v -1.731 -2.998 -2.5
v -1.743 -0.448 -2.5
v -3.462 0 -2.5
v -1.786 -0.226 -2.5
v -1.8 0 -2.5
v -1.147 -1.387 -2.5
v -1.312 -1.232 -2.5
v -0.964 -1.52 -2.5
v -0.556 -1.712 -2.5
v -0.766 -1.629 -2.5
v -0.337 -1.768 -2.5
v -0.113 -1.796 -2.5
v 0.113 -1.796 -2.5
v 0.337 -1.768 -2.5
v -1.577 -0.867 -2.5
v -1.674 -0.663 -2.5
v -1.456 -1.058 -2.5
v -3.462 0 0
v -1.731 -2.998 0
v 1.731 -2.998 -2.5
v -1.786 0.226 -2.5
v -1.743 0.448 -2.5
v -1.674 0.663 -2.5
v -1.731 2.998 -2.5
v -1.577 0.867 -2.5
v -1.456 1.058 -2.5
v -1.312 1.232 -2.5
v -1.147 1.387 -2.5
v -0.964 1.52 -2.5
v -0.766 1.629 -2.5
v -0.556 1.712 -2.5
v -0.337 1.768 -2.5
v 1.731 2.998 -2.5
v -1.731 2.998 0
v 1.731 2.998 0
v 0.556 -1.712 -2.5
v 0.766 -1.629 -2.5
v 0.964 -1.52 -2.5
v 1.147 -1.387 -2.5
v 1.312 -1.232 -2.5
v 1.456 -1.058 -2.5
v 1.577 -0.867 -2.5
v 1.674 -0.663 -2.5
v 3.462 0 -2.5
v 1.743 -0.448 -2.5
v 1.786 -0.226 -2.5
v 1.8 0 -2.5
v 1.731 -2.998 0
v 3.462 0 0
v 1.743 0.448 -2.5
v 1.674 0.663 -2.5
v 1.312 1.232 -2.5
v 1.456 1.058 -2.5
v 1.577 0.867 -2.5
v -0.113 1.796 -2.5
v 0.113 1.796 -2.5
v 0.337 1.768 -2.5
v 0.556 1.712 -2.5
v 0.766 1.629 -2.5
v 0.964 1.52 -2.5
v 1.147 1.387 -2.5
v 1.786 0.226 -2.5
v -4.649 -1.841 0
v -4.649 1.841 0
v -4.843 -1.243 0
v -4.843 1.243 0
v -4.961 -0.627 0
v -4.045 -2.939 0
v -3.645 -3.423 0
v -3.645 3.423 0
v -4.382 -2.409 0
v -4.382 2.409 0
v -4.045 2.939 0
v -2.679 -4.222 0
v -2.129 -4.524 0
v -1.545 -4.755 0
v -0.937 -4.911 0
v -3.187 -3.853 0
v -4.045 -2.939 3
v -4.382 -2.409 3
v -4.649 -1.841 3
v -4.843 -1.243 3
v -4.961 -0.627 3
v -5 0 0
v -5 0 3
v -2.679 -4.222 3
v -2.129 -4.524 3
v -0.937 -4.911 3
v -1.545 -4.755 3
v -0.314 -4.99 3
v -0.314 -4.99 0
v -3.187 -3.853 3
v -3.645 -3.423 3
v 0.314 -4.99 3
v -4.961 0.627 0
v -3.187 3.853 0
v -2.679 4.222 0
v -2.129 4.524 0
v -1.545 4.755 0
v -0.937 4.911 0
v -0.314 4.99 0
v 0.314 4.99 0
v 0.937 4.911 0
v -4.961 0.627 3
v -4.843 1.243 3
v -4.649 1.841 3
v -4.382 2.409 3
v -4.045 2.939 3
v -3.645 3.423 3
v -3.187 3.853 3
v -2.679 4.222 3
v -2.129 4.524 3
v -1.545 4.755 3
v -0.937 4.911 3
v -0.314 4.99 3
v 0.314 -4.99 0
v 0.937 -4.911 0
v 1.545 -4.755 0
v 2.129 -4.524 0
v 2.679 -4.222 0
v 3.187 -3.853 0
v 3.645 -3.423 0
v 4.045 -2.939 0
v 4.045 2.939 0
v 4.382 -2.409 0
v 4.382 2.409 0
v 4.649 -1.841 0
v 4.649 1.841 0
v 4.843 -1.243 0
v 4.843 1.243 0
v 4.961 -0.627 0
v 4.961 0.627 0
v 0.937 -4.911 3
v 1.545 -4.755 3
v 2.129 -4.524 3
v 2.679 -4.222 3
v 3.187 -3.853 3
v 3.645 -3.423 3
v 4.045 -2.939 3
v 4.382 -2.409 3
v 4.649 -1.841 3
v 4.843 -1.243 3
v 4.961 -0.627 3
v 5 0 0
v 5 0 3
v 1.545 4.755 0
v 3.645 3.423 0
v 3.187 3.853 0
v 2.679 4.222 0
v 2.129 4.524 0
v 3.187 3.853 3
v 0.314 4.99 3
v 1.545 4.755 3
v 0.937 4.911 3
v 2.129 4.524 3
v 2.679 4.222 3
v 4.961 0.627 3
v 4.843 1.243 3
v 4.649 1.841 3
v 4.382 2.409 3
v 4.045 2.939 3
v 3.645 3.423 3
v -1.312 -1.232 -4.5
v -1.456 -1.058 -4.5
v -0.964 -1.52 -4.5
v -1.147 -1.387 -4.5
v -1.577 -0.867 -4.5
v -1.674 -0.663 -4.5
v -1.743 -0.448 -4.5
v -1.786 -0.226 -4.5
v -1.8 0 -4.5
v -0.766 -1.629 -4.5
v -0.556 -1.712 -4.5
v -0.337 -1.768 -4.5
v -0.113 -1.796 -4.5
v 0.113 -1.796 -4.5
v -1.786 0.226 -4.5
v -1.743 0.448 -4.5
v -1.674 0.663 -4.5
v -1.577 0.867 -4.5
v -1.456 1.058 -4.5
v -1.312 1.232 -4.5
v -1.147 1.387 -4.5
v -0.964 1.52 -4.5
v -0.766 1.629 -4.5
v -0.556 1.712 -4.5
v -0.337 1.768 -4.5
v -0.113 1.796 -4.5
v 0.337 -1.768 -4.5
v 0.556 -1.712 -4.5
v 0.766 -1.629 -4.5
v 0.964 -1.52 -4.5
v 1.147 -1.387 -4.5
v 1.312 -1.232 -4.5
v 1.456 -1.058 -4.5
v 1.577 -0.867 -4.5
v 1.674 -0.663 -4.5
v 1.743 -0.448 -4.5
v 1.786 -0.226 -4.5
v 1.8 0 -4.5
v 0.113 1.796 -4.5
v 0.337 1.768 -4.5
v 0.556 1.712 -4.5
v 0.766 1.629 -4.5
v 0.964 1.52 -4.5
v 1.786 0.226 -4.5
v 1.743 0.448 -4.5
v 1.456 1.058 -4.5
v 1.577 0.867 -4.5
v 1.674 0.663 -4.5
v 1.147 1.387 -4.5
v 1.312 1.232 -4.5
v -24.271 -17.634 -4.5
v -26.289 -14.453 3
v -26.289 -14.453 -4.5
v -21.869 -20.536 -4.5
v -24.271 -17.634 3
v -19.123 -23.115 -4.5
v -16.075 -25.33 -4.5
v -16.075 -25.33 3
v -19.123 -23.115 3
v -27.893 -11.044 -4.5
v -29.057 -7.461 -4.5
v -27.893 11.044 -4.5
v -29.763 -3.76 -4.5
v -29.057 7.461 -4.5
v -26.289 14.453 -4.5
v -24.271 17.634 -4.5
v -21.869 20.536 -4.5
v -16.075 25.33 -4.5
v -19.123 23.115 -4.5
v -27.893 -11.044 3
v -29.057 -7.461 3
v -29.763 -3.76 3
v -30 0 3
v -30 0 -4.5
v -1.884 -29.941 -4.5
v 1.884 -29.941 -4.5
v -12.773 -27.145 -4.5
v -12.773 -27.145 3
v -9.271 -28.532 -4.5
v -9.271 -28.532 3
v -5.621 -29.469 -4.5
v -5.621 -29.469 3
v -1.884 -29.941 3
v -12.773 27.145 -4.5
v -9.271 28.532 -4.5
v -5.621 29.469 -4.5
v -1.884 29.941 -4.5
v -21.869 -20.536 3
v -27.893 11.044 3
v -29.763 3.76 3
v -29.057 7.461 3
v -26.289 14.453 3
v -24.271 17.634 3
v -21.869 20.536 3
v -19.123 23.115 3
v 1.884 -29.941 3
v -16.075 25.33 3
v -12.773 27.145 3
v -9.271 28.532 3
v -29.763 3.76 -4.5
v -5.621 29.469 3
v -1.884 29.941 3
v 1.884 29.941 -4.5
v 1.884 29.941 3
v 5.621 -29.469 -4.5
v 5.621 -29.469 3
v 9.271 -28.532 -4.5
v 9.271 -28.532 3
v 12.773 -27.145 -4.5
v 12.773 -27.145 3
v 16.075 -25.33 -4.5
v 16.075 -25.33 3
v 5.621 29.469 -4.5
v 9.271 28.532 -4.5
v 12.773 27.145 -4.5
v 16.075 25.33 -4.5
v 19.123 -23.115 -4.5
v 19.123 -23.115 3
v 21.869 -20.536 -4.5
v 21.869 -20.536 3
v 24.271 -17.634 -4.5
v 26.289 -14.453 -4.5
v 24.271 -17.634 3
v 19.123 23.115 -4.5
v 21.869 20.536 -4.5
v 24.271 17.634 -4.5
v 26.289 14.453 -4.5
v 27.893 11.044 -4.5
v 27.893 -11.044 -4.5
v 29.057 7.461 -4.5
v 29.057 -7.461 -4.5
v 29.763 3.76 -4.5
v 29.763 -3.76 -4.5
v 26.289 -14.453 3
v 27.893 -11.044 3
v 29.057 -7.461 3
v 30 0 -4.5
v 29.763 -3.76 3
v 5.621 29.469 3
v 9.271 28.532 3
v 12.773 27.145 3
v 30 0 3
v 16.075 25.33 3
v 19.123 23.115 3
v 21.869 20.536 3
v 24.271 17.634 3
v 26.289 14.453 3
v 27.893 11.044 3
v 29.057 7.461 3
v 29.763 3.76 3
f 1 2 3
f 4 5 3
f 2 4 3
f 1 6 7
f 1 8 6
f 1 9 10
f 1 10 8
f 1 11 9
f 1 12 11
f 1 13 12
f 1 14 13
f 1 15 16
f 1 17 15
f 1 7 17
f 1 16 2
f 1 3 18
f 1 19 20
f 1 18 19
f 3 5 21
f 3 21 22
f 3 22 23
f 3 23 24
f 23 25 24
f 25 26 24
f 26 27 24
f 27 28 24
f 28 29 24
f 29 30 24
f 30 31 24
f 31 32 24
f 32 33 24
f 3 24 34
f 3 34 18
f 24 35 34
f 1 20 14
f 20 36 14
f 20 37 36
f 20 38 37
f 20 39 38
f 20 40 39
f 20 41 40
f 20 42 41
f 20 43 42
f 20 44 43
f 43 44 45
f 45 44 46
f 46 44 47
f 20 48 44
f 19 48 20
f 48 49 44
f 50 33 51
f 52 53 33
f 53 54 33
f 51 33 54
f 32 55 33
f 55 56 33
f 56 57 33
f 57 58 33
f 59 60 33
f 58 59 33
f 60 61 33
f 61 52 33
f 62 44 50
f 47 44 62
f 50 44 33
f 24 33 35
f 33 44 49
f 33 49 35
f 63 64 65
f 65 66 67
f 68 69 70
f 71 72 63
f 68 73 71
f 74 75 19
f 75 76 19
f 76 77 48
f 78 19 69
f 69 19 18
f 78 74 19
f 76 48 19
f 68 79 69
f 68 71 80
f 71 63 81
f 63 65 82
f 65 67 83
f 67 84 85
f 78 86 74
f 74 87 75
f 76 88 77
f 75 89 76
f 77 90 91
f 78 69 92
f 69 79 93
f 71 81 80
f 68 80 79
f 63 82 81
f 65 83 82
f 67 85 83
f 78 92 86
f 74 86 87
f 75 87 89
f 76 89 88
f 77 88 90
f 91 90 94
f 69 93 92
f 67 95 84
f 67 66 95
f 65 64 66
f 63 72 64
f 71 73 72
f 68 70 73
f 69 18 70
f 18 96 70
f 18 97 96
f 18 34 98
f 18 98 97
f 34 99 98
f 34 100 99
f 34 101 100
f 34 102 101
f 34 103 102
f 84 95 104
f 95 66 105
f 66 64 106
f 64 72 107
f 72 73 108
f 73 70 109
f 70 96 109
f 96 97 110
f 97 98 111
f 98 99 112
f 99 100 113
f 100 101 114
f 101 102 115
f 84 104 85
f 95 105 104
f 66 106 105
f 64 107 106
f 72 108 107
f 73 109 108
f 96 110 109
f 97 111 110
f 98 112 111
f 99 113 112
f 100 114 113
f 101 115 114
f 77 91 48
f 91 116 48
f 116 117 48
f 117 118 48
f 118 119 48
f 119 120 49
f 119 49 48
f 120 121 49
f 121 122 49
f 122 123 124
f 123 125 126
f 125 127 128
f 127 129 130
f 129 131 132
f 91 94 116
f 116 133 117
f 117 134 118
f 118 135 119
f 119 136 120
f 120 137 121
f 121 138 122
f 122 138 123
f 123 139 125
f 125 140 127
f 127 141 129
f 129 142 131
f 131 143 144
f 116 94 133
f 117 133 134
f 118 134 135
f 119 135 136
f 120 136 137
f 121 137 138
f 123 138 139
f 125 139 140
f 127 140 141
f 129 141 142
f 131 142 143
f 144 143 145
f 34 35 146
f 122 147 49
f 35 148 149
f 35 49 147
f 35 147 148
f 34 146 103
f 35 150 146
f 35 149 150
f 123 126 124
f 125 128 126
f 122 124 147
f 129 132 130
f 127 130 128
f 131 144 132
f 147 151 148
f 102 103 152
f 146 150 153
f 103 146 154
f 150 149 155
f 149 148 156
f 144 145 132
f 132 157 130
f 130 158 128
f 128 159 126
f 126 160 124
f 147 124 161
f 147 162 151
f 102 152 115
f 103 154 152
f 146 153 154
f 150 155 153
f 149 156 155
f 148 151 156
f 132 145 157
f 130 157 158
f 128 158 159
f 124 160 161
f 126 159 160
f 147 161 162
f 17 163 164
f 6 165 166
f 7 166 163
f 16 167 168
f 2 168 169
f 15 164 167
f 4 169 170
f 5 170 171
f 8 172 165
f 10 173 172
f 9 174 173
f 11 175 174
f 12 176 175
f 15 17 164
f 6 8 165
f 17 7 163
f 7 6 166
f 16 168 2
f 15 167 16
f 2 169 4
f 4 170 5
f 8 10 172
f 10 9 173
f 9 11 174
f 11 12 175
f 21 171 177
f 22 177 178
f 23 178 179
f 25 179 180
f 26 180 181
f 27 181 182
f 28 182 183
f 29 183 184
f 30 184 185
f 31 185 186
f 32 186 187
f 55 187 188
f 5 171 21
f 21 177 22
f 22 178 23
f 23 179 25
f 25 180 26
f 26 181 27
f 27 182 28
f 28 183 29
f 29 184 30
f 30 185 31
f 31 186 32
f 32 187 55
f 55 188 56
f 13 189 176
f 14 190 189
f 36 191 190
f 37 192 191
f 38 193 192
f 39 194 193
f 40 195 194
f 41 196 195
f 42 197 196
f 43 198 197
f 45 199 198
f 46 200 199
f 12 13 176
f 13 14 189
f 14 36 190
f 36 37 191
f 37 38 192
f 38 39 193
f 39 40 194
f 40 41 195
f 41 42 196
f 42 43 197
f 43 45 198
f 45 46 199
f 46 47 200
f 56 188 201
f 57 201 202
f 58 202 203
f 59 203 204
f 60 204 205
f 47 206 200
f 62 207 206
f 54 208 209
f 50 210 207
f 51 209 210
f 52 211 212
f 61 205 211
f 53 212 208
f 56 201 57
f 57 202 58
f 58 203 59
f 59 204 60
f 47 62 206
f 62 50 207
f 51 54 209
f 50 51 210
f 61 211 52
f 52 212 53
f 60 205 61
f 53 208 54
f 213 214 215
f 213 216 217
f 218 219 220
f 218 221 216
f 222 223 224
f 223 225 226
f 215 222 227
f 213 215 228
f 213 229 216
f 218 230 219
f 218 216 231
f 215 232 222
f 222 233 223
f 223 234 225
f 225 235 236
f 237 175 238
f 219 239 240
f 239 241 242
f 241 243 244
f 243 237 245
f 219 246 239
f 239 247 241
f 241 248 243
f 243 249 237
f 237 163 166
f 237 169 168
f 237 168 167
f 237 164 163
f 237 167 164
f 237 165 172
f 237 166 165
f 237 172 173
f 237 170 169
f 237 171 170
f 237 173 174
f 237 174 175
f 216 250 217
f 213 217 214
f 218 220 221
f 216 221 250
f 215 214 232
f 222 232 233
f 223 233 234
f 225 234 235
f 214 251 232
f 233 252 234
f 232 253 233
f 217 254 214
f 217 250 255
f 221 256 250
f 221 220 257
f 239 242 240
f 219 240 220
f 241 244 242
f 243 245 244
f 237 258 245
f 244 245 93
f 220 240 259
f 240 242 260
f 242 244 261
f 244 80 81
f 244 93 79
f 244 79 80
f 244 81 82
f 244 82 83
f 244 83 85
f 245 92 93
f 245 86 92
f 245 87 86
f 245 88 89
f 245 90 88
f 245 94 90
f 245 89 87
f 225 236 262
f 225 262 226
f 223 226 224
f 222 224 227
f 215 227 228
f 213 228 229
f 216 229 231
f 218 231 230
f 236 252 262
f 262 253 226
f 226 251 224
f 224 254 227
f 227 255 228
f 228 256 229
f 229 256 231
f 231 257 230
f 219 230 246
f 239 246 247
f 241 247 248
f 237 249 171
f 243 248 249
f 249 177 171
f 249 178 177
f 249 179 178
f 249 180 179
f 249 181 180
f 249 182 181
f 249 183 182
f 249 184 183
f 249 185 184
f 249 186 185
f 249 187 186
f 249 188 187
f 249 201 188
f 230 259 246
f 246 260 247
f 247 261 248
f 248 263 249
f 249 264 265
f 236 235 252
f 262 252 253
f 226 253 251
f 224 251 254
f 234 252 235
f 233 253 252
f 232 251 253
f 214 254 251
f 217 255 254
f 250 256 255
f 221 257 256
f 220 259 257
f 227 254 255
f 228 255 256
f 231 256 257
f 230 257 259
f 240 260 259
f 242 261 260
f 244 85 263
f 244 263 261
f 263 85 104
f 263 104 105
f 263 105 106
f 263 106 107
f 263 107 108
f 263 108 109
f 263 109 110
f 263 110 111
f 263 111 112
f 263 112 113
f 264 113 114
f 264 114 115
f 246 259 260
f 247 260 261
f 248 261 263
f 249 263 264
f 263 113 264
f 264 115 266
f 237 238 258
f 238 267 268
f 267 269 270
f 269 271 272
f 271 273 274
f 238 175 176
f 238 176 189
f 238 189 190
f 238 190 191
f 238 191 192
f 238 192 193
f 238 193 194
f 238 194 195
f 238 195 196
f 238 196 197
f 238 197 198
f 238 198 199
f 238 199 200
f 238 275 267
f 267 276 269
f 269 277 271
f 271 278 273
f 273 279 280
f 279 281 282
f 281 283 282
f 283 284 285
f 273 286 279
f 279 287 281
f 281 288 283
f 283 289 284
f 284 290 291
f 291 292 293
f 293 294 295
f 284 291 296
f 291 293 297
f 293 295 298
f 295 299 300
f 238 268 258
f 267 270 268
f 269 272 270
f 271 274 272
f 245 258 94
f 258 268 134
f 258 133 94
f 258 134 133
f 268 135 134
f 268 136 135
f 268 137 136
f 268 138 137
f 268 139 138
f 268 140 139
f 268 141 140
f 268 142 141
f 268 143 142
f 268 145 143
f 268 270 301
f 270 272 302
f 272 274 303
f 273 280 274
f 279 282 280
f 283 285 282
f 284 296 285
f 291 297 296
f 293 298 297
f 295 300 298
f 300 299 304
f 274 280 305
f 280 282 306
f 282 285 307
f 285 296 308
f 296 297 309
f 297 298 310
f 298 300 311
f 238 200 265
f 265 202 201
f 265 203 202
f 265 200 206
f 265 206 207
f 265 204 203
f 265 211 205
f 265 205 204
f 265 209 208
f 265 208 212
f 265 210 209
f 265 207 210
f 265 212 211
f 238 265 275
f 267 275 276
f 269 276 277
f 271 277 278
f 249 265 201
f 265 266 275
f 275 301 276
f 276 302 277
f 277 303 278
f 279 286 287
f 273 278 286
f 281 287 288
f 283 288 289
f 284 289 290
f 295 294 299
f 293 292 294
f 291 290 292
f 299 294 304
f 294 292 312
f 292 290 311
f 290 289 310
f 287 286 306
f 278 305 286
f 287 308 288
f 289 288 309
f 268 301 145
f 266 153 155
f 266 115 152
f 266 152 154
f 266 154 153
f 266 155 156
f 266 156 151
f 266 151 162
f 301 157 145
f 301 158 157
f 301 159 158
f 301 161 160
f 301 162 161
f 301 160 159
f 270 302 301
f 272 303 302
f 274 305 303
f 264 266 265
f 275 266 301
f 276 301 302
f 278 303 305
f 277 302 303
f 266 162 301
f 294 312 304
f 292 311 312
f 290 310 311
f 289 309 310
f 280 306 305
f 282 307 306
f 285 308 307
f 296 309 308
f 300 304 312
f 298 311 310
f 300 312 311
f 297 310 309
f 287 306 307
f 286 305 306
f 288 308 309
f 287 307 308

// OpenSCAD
$fn = 50;


difference() {
	union() {
		translate(v = [0, 0, -4.5000000000]) {
			cylinder(h = 7.5000000000, r = 30.0000000000);
		}
	}
	union() {
		translate(v = [0, 0, 0]) {
			rotate(a = [0, 0, 0]) {
				difference() {
					union() {
						translate(v = [0, 0, -2.5000000000]) {
							linear_extrude(height = 2.5000000000) {
								polygon(points = [[3.4620000000, 0.0000000000], [1.7310000000, 2.9981799479], [-1.7310000000, 2.9981799479], [-3.4620000000, 0.0000000000], [-1.7310000000, -2.9981799479], [1.7310000000, -2.9981799479]]);
							}
						}
					}
					union();
				}
			}
		}
		#cylinder(h = 3, r = 5.0000000000);
		#translate(v = [0, 0, -100.0000000000]) {
			cylinder(h = 200, r = 1.8000000000);
		}
	}
}
